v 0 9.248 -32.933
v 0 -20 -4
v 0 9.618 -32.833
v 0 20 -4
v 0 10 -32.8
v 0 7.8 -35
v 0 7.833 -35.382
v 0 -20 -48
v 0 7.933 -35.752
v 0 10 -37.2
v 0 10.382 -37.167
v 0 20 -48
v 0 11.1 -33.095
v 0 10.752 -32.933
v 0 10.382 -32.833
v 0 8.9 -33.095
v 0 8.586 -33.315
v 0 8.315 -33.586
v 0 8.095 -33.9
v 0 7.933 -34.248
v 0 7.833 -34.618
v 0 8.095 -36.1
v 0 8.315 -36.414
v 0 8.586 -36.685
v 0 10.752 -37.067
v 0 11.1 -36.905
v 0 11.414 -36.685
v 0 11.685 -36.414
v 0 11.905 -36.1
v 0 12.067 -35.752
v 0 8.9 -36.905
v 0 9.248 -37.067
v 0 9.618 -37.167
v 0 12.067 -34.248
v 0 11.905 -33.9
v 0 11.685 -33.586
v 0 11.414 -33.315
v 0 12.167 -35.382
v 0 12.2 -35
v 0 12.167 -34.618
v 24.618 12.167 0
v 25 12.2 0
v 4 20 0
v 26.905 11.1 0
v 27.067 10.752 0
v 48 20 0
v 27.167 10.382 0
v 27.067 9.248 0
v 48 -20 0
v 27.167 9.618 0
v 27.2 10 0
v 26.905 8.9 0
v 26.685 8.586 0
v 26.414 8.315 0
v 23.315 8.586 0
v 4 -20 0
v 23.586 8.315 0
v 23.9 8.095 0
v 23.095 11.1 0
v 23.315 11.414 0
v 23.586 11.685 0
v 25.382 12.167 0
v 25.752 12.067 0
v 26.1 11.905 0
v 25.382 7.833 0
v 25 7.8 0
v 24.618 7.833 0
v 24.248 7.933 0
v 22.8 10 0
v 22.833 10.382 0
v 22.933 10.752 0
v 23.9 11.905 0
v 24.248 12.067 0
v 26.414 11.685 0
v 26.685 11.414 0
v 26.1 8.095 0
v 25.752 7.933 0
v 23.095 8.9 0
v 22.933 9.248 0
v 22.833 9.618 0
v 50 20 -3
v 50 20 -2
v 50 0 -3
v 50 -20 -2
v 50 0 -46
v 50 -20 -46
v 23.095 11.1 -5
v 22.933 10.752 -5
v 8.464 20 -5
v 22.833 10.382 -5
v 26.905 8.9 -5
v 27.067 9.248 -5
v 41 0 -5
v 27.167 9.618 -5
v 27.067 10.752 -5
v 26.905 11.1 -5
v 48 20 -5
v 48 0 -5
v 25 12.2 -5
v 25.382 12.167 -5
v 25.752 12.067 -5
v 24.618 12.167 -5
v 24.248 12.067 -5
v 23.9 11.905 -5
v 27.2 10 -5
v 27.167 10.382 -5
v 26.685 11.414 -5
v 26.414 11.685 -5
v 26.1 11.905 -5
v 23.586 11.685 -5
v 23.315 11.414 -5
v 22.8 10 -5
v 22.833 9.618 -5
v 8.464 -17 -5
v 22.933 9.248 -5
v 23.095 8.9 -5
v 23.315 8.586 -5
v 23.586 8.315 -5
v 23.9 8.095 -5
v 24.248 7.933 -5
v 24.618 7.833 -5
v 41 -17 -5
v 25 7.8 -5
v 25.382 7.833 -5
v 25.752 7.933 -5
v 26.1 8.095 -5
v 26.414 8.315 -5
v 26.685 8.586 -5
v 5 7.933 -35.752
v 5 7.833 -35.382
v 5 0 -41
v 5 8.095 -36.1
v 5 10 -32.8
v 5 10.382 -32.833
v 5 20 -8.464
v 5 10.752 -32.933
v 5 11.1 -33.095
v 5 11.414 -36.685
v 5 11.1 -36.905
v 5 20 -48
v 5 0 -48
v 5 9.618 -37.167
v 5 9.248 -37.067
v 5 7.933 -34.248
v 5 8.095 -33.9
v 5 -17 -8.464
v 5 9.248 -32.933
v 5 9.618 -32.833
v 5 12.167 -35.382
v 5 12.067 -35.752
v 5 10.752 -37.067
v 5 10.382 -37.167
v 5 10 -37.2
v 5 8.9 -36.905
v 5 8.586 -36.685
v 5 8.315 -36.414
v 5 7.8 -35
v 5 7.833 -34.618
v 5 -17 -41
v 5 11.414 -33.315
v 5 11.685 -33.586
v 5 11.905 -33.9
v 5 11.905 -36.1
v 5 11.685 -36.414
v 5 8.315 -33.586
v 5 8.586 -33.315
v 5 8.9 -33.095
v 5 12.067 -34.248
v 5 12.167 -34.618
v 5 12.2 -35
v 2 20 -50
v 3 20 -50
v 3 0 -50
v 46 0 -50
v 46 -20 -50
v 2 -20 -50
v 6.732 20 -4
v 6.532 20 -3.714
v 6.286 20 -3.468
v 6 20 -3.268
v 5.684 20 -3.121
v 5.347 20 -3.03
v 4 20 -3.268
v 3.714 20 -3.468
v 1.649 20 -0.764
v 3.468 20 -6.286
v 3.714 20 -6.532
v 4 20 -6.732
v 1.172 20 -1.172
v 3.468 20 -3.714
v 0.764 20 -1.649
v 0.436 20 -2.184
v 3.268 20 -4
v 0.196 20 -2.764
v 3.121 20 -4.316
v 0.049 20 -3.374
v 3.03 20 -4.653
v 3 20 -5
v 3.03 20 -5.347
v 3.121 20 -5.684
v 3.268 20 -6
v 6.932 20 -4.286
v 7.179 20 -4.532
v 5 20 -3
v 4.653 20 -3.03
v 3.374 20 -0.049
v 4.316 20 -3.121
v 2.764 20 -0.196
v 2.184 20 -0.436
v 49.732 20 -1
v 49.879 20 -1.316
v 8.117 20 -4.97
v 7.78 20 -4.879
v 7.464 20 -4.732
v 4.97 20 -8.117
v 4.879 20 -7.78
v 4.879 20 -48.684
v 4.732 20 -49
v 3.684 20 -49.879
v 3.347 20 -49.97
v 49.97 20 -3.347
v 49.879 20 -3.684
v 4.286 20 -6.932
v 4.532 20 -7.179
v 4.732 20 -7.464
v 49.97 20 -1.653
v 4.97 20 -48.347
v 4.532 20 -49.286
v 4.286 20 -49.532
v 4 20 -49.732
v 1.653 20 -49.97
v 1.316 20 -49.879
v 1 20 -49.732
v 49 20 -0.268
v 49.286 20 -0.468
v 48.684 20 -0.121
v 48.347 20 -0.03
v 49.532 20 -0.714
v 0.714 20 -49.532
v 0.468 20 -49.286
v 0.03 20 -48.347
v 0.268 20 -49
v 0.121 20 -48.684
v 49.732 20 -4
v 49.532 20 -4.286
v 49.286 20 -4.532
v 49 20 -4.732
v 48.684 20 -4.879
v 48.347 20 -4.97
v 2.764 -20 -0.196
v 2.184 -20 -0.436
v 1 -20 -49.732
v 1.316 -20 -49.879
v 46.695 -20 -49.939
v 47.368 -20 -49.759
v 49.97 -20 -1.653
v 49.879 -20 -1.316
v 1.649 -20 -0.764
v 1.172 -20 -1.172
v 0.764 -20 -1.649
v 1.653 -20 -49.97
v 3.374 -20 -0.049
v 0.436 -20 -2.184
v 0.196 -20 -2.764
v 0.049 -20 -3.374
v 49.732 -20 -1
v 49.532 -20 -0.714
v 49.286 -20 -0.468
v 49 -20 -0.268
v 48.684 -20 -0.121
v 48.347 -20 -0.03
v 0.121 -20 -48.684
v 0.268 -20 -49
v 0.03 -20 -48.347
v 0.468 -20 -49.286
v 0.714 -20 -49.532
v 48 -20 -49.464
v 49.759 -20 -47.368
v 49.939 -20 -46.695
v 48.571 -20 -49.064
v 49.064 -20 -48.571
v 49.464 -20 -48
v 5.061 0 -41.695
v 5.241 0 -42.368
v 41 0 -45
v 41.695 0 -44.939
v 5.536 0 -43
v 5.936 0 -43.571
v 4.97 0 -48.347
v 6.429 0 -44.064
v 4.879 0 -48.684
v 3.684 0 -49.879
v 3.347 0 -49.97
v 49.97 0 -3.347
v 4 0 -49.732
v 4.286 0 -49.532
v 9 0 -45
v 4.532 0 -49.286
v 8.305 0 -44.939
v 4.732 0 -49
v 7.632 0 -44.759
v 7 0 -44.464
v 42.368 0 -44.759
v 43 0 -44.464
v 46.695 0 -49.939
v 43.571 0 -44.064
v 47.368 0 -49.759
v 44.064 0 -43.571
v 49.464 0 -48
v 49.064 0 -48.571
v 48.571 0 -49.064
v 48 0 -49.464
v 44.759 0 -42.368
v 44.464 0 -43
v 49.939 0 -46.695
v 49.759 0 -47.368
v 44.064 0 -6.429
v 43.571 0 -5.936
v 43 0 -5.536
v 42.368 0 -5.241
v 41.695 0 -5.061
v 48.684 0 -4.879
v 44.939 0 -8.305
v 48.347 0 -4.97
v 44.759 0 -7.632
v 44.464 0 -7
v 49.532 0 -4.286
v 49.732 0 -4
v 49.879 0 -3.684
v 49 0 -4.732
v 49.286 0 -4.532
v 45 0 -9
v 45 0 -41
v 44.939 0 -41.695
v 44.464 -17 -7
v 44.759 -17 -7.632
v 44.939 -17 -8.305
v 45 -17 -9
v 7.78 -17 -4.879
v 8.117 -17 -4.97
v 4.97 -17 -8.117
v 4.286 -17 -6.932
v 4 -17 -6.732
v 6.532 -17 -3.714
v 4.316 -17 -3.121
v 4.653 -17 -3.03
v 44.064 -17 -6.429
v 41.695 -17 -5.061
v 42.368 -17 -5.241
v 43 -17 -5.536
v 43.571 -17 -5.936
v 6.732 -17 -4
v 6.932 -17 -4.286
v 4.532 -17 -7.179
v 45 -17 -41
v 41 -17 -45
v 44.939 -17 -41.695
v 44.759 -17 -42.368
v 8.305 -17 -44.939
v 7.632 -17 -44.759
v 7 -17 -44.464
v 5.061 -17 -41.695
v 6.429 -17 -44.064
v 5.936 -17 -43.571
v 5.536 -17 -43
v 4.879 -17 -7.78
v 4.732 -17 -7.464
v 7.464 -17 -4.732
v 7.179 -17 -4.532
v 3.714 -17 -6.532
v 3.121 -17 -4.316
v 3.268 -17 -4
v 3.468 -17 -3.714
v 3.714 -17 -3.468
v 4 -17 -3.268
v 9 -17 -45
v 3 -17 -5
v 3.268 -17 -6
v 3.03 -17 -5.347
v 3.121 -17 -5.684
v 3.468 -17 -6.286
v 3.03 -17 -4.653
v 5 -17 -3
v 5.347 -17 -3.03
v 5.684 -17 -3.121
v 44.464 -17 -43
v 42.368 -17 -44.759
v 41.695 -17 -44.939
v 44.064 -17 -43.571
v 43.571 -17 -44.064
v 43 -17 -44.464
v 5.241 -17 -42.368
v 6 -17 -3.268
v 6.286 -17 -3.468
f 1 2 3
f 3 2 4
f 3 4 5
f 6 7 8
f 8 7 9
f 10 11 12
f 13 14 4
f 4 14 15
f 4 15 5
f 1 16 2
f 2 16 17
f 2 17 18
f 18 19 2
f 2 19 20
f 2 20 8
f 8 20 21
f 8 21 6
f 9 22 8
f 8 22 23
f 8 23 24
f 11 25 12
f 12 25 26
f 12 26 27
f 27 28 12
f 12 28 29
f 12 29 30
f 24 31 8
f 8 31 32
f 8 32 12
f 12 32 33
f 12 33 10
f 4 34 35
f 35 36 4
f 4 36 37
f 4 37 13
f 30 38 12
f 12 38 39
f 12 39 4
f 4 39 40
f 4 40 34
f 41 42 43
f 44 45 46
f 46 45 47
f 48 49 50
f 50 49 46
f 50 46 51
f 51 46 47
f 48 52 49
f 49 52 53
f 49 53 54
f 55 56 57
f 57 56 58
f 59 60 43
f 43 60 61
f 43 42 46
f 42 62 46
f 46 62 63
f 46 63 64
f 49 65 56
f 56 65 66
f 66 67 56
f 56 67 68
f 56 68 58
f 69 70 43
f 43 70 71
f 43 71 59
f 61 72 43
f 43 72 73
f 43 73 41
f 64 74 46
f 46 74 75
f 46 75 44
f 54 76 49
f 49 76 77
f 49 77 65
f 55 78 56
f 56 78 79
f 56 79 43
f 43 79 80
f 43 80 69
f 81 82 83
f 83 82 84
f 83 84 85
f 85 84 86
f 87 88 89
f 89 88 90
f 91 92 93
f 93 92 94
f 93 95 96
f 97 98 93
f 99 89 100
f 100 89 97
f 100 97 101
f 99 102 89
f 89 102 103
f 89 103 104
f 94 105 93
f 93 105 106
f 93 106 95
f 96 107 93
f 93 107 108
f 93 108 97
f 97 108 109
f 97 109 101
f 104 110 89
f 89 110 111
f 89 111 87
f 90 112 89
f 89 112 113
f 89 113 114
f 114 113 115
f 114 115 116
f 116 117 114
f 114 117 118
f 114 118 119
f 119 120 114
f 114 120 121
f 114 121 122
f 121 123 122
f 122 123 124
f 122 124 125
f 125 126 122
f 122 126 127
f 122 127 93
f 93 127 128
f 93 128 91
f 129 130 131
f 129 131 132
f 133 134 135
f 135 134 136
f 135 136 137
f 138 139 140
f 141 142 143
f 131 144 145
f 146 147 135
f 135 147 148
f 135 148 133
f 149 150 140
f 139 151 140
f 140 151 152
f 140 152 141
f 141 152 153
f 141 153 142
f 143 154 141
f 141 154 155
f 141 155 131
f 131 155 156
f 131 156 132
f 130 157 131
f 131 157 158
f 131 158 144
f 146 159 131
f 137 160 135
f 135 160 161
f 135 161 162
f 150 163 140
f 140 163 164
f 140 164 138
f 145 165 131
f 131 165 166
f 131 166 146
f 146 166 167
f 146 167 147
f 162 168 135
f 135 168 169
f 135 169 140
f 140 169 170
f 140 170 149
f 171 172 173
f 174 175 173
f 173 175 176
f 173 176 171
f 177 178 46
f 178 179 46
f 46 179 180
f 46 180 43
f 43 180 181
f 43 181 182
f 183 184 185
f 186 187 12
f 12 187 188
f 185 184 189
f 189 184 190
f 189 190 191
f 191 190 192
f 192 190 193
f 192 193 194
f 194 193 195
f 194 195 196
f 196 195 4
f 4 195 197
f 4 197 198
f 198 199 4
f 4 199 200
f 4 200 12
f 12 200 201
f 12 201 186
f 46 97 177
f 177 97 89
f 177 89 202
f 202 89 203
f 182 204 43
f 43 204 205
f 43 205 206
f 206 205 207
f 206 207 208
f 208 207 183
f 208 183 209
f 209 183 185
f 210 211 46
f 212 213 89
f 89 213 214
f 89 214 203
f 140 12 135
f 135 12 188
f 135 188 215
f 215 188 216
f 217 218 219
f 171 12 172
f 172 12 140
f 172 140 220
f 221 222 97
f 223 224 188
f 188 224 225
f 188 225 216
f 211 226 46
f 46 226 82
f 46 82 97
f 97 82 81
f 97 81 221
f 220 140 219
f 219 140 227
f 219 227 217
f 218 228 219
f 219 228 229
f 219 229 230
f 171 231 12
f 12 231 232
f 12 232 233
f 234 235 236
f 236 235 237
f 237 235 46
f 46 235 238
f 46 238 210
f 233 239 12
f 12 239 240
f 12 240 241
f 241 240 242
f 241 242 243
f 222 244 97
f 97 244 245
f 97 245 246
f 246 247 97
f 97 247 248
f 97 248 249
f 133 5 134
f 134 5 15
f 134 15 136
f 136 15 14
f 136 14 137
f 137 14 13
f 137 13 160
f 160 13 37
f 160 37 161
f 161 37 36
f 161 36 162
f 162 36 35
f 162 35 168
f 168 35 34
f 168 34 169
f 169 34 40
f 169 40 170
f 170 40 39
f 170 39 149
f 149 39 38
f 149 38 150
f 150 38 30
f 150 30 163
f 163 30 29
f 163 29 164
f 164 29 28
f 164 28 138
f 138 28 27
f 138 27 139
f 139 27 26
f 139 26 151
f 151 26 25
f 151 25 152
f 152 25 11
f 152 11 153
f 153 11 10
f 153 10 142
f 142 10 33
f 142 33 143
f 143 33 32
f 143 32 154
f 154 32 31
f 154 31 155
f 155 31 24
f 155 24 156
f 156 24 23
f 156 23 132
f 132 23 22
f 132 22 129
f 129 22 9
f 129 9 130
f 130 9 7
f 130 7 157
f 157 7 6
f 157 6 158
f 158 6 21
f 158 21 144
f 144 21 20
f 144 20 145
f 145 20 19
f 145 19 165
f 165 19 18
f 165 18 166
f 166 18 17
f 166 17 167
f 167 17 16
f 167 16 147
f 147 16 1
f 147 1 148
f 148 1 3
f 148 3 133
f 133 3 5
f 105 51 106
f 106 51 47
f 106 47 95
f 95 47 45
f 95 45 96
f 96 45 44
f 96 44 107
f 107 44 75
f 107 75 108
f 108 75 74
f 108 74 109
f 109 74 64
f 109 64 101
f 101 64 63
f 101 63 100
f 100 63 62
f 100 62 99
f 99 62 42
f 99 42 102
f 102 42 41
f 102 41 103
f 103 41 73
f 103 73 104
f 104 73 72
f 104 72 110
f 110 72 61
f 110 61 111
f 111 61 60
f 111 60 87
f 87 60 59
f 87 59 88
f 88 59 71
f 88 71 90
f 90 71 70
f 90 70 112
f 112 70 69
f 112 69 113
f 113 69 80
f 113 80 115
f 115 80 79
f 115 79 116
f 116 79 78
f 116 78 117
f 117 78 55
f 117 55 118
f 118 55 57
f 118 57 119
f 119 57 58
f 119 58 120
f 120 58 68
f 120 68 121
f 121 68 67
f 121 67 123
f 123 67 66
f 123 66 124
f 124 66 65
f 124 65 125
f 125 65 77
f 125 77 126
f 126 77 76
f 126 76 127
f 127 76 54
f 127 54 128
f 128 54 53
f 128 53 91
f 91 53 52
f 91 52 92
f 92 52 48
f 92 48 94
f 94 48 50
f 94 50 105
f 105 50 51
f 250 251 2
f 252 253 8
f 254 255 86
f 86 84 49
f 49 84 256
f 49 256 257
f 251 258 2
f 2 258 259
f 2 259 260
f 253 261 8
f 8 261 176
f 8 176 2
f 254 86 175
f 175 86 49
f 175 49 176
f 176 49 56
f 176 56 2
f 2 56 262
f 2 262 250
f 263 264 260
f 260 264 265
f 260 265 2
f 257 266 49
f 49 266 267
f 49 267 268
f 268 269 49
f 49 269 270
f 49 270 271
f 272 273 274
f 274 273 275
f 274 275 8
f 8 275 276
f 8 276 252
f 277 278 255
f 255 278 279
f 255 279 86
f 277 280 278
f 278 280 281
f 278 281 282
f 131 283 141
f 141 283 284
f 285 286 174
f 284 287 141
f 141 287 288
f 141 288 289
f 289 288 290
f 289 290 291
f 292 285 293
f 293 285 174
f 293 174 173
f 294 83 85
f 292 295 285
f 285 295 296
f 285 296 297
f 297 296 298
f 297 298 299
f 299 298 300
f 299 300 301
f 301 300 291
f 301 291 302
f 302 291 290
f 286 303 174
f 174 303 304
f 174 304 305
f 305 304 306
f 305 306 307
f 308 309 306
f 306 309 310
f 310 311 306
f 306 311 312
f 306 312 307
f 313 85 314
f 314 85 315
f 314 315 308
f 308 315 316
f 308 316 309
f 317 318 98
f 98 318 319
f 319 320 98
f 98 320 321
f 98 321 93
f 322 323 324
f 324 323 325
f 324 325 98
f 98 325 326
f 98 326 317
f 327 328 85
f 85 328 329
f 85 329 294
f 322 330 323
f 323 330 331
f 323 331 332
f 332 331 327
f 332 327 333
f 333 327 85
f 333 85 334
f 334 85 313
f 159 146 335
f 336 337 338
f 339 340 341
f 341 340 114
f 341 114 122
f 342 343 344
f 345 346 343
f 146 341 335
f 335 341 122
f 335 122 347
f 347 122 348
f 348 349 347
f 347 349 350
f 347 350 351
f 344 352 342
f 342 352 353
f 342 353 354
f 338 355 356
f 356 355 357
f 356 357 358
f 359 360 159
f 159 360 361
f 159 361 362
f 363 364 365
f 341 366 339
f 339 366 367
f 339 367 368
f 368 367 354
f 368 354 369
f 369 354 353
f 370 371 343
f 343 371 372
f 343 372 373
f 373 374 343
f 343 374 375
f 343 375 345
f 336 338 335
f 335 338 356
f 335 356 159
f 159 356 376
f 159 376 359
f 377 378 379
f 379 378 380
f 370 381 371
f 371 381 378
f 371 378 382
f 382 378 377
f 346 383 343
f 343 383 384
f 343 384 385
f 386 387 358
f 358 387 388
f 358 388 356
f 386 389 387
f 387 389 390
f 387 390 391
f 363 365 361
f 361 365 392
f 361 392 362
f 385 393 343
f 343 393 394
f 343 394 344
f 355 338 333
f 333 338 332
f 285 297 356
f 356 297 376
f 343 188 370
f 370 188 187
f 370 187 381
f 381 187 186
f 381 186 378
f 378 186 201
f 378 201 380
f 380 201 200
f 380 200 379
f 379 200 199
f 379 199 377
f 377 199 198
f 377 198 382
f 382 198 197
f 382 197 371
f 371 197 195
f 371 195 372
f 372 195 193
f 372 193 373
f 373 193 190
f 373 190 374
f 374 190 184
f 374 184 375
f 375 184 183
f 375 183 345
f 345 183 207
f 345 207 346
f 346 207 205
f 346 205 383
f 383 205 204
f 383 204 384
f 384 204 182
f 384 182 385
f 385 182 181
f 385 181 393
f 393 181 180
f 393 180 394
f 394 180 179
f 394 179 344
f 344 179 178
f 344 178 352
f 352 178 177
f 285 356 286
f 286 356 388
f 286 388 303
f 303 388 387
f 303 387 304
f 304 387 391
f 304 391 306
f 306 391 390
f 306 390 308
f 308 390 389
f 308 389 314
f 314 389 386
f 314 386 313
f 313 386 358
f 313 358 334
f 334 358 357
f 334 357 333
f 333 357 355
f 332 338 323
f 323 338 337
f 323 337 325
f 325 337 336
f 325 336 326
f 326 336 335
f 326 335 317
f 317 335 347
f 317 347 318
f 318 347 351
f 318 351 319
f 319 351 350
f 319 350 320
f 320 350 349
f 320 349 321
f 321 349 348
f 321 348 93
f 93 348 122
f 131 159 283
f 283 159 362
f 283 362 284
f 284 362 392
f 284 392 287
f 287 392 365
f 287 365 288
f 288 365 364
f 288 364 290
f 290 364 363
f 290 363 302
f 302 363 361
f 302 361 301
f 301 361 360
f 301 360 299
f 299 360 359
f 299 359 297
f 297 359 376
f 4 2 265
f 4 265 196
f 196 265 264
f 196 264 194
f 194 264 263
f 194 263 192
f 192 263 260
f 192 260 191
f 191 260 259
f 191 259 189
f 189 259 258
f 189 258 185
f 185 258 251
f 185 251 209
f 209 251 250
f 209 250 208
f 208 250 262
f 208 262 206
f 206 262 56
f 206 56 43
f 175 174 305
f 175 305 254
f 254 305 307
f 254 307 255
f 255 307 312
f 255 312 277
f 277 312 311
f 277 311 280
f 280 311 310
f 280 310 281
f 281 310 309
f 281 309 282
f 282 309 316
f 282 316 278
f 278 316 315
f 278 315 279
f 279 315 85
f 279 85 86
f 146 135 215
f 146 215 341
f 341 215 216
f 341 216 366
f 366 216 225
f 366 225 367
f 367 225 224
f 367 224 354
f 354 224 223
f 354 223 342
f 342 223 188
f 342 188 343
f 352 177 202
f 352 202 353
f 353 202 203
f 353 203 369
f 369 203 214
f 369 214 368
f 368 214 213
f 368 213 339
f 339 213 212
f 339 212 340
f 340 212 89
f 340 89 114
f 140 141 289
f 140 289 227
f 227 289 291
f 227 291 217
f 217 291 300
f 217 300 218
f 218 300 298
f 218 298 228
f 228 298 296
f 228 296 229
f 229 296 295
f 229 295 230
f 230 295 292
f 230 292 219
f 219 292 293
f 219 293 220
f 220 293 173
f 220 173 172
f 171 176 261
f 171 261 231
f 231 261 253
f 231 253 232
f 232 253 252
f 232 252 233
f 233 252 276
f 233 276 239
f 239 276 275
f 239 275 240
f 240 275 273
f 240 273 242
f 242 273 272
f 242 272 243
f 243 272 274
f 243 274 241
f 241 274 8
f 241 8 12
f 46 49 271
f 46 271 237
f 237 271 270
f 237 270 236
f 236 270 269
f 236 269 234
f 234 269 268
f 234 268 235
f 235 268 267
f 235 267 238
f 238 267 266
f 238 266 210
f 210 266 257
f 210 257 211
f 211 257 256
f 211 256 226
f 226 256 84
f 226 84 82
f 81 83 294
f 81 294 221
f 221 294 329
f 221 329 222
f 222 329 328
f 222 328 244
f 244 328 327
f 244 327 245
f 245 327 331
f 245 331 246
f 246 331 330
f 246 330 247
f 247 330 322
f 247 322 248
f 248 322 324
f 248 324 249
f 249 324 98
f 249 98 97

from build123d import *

# Parameters (mm, degrees)
EXTRUDE_1_DEPTH     = 20
CUT_EXTRUDE_2_REACH = 75.485
SKETCH_4_R          = 2.2
CUT_EXTRUDE_3_REACH = 75.485
SKETCH_5_R          = 2.2
SKETCH_3_W          = 50
SKETCH_3_H          = 50
EXTRUDE_2_DEPTH     = 20
SKETCH_10_W         = 40
SKETCH_10_H         = 40
CUT_EXTRUDE_5_DEPTH = 17
SKETCH_6_R          = 2
CUT_EXTRUDE_4_DEPTH = 37
FILLET_1_R          = 4
FILLET_2_R          = 2


with BuildPart() as part:
    # ｽｹｯﾁ1 → ﾎﾞｽ - 押し出し1 (new body)
    with BuildSketch(Plane(origin=(0, 0, 0), x_dir=(1, 0, 0), z_dir=(0, 1, 0))):
        Polygon((0, 0), (50, 0), (50, 5), (5, 5), (5, 50), (0, 50), align=None)
    extrude(amount=EXTRUDE_1_DEPTH)

    # ｽｹｯﾁ4 → ｶｯﾄ - 押し出し2 (cut, up to next)
    with BuildSketch(Plane.ZY, mode=Mode.PRIVATE) as cut_extrude_2_sk1:
        with Locations((-35, 10)):
            Circle(SKETCH_4_R)
    cut_extrude_2_tool1 = extrude(cut_extrude_2_sk1.sketch, amount=-CUT_EXTRUDE_2_REACH, mode=Mode.PRIVATE) & part.part
    add(cut_extrude_2_tool1.solids().sort_by_distance((0, 10, -35))[0], mode=Mode.SUBTRACT)

    # ｽｹｯﾁ5 → ｶｯﾄ - 押し出し3 (cut, up to next)
    with BuildSketch(Plane.XY, mode=Mode.PRIVATE) as cut_extrude_3_sk1:
        with Locations((25, 10)):
            Circle(SKETCH_5_R)
    cut_extrude_3_tool1 = extrude(cut_extrude_3_sk1.sketch, amount=-CUT_EXTRUDE_3_REACH, mode=Mode.PRIVATE) & part.part
    add(cut_extrude_3_tool1.solids().sort_by_distance((25, 10, 0))[0], mode=Mode.SUBTRACT)

    # ｽｹｯﾁ3 → ﾎﾞｽ - 押し出し2 (add)
    with BuildSketch(Plane.XZ):
        with Locations((25, -25)):
            Rectangle(SKETCH_3_W, SKETCH_3_H)
    extrude(amount=EXTRUDE_2_DEPTH)

    # ｽｹｯﾁ10 → ｶｯﾄ - 押し出し5 (cut)
    with BuildSketch(Plane(origin=(0, 0, 0), x_dir=(1, 0, 0), z_dir=(0, 1, 0))):
        with Locations((25, 25)):
            Rectangle(SKETCH_10_W, SKETCH_10_H)
    extrude(amount=-CUT_EXTRUDE_5_DEPTH, mode=Mode.SUBTRACT)

    # ｽｹｯﾁ6 → ｶｯﾄ - 押し出し4 (cut)
    with BuildSketch(Plane(origin=(0, 20, 0), x_dir=(1, 0, 0), z_dir=(0, 1, 0))):
        with Locations((5, 5)):
            Circle(SKETCH_6_R)
    extrude(amount=-CUT_EXTRUDE_4_DEPTH, mode=Mode.SUBTRACT)

    # ﾌｨﾚｯﾄ1
    fillet_1_edges = [part.edges().sort_by_distance(p)[0] for p in [
        (0, 0, 0),
        (50, -10, -50),
        (45, -8.5, -5),
        (45, -8.5, -45),
        (5, -8.5, -45),
    ]]
    fillet(fillet_1_edges, radius=FILLET_1_R)

    # ﾌｨﾚｯﾄ2
    fillet_2_edges = [part.edges().sort_by_distance(p)[0] for p in [
        (0, 0, -50),
        (5, 10, -50),
        (50, 10, -5),
        (50, 0, 0),
        (7, 1.5, -5),
        (5, 1.5, -7),
    ]]
    fillet(fillet_2_edges, radius=FILLET_2_R)


solid = part.part
